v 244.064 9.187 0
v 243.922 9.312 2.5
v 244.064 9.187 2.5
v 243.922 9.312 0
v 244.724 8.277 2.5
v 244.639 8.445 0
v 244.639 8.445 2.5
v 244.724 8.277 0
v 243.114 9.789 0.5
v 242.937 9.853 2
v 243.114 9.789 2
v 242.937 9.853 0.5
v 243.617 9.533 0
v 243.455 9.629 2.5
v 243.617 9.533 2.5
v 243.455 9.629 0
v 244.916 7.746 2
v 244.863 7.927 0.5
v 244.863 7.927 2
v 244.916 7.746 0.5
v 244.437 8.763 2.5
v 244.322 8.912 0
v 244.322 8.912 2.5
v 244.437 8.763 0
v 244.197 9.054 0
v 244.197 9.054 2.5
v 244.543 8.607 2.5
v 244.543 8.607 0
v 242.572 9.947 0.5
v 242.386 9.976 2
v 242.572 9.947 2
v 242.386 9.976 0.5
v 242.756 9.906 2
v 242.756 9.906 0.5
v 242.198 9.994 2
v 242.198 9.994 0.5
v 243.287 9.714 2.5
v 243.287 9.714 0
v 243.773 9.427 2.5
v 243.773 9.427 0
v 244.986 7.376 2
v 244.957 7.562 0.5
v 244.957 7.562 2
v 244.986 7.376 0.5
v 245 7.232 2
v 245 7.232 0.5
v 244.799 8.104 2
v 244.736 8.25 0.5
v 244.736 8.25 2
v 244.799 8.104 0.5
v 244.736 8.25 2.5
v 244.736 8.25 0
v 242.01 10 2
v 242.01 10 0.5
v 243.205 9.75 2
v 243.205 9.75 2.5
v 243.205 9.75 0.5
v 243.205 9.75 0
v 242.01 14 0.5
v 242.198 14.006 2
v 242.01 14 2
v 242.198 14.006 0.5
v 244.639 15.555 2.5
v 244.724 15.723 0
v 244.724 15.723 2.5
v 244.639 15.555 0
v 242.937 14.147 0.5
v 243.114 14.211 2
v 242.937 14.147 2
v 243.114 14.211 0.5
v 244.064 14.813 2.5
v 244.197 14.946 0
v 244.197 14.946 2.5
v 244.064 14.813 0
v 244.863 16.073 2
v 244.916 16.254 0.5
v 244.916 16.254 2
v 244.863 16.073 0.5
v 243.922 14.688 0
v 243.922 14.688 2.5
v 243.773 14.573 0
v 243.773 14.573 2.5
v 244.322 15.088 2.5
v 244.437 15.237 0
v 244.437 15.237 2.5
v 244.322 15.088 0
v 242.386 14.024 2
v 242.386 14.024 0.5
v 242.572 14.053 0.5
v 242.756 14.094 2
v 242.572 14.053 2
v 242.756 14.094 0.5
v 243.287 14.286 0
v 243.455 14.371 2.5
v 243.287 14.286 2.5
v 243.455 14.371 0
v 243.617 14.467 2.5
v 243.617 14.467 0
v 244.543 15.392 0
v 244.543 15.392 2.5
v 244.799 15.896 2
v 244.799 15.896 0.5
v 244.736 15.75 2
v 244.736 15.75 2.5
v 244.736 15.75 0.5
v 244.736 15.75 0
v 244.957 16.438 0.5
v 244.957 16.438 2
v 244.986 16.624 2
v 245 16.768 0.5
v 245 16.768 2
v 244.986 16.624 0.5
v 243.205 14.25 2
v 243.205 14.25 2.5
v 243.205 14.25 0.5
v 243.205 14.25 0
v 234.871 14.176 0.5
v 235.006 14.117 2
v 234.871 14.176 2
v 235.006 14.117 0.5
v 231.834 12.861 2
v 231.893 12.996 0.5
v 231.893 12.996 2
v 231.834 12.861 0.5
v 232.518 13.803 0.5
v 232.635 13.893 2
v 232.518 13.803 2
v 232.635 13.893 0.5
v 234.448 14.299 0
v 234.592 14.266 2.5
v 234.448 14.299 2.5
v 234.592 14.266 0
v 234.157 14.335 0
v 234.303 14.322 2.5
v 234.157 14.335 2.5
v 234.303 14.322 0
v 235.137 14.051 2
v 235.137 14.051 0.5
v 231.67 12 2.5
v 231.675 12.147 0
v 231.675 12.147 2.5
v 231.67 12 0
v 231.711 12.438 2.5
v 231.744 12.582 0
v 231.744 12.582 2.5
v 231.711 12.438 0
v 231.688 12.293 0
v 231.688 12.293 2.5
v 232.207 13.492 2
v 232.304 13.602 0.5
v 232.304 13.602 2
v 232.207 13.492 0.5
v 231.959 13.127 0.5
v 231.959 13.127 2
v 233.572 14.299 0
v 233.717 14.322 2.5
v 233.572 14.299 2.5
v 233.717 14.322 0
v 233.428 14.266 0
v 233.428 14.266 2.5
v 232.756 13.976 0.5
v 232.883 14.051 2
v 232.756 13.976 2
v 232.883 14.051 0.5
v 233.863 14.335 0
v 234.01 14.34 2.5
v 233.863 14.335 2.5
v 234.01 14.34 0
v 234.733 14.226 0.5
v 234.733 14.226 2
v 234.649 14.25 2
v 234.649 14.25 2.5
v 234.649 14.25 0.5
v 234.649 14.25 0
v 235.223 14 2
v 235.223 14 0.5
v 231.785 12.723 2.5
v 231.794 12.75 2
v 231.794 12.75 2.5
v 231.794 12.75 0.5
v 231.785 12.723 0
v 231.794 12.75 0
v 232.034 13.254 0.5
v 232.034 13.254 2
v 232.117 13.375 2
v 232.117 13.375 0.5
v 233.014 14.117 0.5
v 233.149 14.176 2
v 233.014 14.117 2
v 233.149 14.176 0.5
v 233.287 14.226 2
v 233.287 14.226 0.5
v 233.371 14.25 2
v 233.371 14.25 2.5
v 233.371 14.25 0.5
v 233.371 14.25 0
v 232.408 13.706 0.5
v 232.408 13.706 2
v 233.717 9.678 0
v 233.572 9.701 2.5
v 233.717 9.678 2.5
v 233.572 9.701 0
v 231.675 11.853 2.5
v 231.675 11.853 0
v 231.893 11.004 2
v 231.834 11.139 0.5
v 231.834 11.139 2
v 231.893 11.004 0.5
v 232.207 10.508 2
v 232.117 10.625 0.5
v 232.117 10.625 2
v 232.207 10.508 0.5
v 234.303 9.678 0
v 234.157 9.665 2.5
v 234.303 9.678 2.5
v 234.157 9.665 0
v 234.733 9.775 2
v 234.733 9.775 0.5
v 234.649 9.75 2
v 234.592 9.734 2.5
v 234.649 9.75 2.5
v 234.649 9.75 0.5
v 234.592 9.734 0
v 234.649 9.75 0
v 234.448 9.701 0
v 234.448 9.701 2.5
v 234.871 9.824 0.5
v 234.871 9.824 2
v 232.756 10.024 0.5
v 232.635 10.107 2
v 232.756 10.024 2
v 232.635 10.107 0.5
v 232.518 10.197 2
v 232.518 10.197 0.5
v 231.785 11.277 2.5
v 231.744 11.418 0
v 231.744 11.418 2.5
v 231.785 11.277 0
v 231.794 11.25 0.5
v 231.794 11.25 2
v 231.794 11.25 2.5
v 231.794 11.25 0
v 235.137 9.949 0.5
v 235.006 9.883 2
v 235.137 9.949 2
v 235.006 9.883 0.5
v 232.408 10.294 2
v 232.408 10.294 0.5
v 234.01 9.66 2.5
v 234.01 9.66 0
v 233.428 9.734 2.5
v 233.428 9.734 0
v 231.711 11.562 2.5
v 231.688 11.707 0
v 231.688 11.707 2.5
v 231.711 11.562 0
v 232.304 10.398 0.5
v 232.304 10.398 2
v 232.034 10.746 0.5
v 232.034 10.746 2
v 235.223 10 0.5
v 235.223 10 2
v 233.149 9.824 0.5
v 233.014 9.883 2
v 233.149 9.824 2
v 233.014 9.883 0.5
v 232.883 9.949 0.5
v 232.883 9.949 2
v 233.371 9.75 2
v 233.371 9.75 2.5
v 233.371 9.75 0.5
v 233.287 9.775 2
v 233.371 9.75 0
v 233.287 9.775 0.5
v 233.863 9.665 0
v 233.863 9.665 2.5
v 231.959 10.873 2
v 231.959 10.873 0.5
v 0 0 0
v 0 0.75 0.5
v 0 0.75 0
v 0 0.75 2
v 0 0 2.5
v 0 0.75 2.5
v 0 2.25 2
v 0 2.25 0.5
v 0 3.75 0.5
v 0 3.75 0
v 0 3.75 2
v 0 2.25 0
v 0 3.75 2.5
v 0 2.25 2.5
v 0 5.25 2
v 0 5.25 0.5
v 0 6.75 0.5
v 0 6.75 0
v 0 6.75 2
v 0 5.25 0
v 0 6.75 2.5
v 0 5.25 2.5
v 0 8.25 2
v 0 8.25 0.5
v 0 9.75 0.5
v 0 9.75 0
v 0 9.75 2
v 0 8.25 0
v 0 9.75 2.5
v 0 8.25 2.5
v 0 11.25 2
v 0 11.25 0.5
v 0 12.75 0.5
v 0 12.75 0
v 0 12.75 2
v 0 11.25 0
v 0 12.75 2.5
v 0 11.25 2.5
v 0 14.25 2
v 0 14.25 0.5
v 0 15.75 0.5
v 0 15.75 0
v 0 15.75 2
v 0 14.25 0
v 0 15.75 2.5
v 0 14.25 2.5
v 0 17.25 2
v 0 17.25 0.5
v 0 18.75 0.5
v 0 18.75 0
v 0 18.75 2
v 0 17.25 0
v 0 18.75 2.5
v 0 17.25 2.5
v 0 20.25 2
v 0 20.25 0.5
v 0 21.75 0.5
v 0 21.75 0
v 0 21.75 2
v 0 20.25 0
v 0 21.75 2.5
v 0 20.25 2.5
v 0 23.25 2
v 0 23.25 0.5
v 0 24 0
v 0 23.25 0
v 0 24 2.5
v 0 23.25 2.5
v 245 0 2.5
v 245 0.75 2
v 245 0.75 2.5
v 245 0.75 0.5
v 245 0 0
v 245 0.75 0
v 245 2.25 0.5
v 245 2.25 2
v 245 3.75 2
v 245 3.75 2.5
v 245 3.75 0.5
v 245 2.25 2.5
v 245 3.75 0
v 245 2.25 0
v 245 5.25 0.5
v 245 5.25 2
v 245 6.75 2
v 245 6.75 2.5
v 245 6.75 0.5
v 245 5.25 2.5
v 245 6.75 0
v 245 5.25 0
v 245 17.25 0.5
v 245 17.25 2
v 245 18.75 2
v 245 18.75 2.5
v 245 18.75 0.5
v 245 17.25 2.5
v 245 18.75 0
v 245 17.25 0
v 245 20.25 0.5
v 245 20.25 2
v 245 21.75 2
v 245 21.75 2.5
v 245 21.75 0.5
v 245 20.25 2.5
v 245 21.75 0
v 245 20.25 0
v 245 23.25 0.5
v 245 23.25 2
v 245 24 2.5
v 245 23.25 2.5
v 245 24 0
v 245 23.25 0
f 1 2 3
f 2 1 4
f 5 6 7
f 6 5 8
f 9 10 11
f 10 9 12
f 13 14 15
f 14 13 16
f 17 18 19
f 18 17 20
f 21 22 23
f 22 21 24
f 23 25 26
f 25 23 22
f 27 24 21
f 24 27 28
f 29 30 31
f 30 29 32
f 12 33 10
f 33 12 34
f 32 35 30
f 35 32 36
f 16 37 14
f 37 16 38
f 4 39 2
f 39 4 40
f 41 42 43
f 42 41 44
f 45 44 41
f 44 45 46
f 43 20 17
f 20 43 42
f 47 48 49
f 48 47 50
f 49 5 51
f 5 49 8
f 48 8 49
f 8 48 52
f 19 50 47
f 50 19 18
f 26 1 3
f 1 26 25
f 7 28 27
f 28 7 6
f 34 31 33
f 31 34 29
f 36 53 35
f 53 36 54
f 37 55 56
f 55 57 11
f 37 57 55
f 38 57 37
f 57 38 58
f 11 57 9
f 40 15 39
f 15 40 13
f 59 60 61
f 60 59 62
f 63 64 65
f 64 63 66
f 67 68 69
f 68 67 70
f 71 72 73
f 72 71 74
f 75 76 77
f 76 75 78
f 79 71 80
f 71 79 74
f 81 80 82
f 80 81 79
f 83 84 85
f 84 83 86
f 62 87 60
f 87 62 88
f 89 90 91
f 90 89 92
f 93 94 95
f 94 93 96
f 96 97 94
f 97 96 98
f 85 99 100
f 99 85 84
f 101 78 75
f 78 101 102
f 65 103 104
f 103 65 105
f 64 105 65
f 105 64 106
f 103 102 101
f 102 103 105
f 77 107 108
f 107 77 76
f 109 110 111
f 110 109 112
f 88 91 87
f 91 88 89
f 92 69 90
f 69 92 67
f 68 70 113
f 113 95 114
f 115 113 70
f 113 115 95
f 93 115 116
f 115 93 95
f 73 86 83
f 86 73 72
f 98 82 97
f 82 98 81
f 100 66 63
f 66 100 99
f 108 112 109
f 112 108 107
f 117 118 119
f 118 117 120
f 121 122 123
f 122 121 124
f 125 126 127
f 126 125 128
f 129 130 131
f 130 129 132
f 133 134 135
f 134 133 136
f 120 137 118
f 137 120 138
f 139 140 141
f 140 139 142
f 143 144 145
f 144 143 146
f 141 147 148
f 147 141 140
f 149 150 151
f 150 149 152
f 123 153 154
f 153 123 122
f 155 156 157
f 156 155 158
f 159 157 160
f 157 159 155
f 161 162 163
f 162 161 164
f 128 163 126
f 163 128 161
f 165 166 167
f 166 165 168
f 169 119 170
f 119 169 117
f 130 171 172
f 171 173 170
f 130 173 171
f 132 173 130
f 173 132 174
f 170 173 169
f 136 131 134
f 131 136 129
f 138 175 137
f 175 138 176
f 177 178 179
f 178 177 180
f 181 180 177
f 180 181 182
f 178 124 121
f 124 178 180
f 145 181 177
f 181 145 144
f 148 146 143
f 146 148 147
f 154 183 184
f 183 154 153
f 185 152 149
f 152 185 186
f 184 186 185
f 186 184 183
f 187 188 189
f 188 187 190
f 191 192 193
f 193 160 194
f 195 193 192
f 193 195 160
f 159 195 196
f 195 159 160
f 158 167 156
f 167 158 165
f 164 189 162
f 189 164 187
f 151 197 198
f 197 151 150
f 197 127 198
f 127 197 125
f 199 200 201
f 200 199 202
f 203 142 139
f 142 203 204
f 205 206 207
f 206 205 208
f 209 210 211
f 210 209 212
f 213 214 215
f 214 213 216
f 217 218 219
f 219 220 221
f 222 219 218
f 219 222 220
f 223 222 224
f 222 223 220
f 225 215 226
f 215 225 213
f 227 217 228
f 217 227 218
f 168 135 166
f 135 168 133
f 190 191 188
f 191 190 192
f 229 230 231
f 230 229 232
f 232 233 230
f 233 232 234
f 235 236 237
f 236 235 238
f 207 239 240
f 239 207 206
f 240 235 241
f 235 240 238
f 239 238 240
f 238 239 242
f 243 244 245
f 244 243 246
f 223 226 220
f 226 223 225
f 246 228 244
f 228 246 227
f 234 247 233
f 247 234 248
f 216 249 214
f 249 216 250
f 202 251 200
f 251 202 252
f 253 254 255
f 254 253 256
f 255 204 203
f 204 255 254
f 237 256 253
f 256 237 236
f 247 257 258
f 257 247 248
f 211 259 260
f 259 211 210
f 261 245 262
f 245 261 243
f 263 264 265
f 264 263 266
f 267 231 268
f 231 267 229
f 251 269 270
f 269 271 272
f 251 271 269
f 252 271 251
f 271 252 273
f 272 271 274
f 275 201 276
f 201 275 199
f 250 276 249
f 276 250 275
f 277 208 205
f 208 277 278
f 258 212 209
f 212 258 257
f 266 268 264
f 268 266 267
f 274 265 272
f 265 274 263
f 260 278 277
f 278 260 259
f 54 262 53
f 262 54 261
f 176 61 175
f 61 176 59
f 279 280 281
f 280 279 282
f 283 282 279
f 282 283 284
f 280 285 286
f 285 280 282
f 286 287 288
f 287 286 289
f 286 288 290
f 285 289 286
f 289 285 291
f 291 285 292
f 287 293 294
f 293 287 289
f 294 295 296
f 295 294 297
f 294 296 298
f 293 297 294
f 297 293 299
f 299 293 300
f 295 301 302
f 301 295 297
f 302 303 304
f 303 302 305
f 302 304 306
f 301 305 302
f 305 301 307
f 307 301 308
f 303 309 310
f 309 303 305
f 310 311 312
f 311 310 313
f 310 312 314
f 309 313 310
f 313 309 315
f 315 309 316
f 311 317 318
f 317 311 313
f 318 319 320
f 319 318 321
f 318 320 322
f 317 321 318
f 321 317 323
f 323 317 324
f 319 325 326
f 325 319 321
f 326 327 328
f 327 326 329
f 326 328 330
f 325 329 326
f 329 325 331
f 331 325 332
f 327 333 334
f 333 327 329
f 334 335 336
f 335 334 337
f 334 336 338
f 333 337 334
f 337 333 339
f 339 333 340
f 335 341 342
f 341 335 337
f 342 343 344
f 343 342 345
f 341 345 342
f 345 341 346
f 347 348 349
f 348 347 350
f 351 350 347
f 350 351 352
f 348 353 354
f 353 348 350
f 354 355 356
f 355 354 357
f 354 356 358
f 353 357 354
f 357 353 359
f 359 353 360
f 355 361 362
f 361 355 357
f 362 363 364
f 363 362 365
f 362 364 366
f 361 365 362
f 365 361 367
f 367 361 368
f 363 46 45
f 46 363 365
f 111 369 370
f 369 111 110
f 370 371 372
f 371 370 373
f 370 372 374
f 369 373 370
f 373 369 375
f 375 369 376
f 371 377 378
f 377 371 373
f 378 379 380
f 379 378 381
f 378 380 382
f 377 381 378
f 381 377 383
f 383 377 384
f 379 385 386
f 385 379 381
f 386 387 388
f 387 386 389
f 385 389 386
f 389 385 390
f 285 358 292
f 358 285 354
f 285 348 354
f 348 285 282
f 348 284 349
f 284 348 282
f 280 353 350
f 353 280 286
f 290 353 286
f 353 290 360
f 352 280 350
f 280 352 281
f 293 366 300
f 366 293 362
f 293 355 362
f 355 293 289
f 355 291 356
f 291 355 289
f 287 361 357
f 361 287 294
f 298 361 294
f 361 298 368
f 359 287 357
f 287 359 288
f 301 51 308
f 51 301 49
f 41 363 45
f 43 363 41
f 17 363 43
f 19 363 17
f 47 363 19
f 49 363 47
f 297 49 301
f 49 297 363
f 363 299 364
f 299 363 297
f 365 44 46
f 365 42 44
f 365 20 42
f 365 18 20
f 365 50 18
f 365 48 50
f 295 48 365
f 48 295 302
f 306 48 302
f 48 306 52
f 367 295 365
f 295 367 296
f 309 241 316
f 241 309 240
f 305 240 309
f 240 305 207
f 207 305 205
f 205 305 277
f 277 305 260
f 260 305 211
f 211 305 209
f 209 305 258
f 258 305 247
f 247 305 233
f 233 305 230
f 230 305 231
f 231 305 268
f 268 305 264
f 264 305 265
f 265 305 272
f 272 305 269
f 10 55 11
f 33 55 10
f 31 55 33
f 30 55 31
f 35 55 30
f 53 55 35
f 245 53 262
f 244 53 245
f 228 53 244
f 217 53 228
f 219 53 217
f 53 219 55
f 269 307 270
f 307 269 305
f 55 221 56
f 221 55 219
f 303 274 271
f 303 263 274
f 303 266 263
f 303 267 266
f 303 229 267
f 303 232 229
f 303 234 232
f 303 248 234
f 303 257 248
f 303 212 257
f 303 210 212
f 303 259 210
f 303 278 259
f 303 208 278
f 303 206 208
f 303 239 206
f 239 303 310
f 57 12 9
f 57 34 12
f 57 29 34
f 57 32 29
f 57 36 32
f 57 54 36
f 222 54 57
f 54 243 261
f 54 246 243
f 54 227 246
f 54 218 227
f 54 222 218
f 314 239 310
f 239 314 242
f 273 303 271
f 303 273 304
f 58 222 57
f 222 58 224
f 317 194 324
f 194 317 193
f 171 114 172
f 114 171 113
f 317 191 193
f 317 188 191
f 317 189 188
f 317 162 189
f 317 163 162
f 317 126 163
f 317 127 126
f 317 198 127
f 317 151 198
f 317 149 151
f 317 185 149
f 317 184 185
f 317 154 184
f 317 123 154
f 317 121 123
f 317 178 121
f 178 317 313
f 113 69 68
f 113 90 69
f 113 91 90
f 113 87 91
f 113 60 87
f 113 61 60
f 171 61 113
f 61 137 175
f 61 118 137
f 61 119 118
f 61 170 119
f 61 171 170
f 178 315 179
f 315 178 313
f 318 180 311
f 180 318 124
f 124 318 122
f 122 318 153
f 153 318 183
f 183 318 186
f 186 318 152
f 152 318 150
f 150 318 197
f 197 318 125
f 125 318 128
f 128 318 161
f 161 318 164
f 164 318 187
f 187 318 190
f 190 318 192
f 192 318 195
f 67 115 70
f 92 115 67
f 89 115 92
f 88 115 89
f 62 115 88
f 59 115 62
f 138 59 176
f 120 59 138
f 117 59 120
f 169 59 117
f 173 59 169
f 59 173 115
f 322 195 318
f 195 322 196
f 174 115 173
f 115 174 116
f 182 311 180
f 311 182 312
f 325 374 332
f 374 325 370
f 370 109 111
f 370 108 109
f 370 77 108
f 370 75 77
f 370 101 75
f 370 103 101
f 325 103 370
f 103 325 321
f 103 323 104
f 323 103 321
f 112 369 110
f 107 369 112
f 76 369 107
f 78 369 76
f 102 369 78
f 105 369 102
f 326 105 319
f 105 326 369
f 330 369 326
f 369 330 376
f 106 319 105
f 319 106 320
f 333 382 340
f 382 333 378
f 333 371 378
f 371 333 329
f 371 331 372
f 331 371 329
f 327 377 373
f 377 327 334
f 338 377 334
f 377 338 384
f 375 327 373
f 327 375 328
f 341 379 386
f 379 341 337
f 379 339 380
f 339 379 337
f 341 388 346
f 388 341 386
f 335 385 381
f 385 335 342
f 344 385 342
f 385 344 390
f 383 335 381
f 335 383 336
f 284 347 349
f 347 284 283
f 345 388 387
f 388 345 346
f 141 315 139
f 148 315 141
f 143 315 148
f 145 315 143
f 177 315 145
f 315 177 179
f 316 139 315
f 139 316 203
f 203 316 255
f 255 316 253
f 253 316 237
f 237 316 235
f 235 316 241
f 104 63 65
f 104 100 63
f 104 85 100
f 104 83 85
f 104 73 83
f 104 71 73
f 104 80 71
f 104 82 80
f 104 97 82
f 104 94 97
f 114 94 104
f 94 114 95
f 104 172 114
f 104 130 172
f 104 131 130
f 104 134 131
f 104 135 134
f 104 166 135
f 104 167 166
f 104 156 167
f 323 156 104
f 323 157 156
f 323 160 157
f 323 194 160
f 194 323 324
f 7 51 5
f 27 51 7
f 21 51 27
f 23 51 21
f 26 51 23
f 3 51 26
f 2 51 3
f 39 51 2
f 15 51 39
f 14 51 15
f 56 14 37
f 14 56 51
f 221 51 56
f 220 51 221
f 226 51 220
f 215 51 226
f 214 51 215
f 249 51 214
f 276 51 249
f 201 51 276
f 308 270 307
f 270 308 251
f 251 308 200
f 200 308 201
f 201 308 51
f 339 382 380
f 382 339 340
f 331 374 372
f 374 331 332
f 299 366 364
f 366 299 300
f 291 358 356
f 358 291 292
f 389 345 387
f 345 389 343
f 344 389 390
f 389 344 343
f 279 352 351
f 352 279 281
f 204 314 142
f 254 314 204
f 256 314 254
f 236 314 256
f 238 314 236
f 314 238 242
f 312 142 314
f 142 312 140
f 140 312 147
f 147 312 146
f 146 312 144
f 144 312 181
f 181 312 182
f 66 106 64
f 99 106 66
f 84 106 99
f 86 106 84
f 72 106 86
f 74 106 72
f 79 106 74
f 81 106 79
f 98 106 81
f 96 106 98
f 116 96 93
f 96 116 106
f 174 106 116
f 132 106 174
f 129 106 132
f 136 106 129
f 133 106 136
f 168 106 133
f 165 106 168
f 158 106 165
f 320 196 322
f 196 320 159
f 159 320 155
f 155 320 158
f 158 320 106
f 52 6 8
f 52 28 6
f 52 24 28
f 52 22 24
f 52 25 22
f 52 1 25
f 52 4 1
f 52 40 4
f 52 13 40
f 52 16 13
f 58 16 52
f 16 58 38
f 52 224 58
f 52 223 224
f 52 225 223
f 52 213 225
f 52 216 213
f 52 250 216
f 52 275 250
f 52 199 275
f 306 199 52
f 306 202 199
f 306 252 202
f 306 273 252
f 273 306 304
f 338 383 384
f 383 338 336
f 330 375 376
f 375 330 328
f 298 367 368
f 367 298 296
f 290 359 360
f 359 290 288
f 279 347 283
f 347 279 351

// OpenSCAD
$fn = 100;

difference() {
    cube([245, 24, 2.5]);
    
    translate([234.01, 12, -0.1]) {
        union() {
            cylinder(d=4.68, h=3);
            
            translate([0, -2, 0]) {
                cube([11, 4, 3]);
            }

            difference() {
                translate([11-3, -5, 0]) {
                     cube([3, 10, 2.7]);
                }
                
                translate([11-3, -2-3, -0.1]) {
                    cylinder(h=3, d=6);
                }

                translate([11-3, 2+3, -0.1]) {
                    cylinder(h=3, d=6);
                }
            }
        }
    }
    
    for ( i = [0.75  : 3 : 22] ) {           
        translate([0, i, 2]) {
            cube([245, 1.5, 1]);
        }

        translate([0, i, -0.5]) {
            cube([245, 1.5, 1]);
        }
    }
}
